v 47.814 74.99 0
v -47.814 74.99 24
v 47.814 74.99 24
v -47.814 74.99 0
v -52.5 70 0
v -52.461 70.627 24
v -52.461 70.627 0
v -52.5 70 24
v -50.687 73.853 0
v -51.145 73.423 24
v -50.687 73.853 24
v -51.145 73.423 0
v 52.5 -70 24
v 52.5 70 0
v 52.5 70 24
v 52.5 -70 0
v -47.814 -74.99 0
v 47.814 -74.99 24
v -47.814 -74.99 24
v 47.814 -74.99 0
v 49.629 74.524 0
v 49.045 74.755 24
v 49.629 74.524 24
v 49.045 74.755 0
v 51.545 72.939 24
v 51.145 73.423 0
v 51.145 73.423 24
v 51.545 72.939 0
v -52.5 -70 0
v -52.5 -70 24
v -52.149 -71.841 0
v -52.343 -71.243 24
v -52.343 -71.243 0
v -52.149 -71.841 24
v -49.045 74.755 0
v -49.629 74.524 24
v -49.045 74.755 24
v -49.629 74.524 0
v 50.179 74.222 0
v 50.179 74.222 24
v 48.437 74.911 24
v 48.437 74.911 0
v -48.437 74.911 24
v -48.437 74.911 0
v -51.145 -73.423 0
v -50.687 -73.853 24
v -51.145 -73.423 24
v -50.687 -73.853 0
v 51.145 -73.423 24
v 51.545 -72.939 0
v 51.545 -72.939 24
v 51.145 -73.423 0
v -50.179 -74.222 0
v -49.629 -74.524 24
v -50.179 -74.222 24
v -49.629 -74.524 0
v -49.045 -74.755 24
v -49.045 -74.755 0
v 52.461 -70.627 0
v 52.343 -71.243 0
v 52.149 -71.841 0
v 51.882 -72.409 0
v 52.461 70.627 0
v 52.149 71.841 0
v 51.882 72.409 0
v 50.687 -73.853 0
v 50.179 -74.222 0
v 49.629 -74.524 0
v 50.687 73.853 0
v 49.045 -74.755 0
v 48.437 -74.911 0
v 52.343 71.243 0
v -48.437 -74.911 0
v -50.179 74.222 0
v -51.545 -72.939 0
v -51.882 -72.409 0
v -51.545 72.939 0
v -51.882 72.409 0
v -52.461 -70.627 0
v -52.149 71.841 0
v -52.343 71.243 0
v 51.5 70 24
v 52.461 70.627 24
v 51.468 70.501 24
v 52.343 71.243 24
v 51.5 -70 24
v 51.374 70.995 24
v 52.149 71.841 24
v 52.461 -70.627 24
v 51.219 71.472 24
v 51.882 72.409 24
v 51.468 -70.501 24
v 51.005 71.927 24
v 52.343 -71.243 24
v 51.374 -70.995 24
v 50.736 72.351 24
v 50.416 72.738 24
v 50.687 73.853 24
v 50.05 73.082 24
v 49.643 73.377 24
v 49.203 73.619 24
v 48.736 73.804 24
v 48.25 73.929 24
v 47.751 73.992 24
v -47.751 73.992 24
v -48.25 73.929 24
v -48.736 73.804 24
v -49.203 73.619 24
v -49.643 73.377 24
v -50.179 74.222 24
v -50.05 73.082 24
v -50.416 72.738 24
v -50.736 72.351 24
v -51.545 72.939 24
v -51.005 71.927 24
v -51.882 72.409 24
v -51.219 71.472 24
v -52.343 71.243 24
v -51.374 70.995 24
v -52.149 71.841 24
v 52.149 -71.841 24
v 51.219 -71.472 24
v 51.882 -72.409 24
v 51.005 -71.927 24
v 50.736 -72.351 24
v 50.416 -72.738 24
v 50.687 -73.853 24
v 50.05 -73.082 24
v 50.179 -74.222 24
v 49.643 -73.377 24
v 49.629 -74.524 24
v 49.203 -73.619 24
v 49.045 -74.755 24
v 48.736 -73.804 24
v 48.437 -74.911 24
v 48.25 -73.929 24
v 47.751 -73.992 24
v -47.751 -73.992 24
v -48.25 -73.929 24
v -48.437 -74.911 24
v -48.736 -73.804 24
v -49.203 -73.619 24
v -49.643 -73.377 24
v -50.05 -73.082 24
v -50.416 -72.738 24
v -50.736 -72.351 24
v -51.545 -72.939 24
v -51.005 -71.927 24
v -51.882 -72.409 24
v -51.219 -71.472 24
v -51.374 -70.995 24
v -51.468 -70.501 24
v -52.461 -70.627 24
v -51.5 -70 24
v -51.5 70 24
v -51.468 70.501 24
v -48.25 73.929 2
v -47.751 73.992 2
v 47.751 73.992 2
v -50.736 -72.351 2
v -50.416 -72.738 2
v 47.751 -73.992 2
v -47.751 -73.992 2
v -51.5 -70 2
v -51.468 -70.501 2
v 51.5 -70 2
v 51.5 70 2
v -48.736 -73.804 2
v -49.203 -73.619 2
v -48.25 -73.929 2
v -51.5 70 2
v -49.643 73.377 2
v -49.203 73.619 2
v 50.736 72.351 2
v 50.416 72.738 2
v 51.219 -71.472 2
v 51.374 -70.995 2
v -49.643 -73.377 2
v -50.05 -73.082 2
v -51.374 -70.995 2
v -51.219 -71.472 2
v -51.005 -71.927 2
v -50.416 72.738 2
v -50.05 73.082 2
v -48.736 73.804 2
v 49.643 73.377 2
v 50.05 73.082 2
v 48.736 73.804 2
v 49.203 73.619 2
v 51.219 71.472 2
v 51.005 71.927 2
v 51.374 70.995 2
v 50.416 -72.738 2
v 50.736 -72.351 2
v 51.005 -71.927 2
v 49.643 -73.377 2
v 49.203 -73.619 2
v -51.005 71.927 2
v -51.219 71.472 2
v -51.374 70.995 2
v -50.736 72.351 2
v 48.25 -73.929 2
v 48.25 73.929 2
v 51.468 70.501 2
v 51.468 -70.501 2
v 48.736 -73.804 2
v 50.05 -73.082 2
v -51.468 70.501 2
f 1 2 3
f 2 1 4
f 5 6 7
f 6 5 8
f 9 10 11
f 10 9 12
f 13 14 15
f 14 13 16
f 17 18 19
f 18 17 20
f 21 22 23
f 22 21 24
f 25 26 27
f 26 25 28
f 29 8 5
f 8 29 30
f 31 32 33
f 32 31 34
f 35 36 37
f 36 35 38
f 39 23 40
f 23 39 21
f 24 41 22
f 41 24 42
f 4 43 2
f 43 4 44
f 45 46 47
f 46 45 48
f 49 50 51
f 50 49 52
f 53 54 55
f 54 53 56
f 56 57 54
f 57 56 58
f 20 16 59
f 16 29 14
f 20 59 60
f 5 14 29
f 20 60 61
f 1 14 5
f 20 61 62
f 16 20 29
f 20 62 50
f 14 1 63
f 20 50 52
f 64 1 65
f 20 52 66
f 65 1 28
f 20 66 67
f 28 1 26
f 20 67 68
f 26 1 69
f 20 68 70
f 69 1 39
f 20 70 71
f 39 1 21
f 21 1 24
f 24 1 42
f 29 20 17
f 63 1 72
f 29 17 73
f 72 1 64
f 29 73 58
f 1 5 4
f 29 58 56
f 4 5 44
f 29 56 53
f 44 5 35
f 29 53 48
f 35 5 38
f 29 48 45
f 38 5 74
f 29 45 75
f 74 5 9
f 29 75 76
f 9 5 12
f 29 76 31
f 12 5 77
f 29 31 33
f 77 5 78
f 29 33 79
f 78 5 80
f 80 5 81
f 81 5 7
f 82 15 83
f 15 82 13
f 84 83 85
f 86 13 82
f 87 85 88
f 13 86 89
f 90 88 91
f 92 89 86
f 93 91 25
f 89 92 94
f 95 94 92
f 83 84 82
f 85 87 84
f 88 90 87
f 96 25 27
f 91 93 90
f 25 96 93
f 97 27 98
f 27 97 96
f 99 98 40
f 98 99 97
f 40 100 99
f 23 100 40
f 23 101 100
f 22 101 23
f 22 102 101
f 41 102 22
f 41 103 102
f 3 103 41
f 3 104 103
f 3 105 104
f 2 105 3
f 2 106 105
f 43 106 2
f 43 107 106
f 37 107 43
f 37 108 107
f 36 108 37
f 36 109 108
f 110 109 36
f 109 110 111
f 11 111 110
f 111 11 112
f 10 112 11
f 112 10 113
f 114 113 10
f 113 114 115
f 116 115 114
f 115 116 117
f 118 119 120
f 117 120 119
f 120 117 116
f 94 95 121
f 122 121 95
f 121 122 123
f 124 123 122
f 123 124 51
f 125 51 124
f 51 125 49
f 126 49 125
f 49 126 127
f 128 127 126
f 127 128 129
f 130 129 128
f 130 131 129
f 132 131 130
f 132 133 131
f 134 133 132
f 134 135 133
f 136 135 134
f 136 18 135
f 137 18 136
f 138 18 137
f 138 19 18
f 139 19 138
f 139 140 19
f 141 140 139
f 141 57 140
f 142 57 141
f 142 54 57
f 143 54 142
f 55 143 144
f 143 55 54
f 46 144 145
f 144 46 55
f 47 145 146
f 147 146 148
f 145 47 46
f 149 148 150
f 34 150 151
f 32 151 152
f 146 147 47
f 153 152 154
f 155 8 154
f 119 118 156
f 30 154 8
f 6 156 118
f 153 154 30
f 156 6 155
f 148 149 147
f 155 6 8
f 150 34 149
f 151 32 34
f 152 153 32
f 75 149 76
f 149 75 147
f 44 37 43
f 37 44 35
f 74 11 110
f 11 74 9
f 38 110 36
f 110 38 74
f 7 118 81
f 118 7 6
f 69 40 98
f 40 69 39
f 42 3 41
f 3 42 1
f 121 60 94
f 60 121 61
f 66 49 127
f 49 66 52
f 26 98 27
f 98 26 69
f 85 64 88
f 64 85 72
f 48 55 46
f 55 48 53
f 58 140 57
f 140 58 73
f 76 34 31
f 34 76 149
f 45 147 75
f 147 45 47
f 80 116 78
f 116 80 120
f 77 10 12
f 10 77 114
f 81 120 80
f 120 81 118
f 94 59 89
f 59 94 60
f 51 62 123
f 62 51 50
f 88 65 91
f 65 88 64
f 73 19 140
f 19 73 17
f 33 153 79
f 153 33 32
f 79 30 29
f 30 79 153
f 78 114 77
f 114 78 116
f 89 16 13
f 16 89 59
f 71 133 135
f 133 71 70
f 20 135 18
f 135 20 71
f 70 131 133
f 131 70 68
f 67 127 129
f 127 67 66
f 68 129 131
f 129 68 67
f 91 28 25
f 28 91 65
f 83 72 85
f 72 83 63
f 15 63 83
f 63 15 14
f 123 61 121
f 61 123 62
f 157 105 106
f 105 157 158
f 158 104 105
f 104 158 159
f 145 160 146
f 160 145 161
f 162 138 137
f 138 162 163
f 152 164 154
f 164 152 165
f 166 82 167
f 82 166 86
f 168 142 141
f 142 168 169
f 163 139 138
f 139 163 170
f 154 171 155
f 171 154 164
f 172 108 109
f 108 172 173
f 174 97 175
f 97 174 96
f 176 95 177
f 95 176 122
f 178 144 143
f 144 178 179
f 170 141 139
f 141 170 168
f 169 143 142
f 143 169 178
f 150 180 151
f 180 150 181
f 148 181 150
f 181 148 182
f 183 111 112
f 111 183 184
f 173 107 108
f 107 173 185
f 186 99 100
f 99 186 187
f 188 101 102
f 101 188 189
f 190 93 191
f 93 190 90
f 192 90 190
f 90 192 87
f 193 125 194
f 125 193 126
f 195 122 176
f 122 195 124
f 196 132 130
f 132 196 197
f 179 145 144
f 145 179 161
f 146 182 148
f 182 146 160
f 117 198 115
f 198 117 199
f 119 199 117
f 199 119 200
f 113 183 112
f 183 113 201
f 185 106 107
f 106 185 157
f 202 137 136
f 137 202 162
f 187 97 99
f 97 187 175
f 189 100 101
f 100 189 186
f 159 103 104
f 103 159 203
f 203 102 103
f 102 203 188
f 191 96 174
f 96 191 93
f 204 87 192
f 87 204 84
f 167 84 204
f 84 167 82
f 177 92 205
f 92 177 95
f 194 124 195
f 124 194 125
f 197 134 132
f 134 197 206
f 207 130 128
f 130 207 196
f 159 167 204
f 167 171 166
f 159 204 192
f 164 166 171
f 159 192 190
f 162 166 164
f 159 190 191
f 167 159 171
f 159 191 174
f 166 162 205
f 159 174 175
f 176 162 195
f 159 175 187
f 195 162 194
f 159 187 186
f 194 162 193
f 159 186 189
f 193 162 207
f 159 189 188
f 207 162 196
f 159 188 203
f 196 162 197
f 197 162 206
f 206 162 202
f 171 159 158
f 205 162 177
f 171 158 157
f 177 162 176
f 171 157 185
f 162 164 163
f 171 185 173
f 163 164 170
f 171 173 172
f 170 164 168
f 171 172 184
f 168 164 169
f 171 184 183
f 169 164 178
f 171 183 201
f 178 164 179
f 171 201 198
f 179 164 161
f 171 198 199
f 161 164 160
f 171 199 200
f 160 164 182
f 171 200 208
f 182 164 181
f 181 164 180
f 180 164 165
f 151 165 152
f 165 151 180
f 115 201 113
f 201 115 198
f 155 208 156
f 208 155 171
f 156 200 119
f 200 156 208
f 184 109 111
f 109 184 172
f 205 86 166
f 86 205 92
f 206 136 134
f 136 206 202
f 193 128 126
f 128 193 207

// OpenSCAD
$fn = 50;


difference() {
	union() {
		hull() {
			translate(v = [-47.5000000000, 70.0000000000, 0]) {
				cylinder(h = 24, r = 5);
			}
			translate(v = [47.5000000000, 70.0000000000, 0]) {
				cylinder(h = 24, r = 5);
			}
			translate(v = [-47.5000000000, -70.0000000000, 0]) {
				cylinder(h = 24, r = 5);
			}
			translate(v = [47.5000000000, -70.0000000000, 0]) {
				cylinder(h = 24, r = 5);
			}
		}
	}
	union() {
		translate(v = [0, 0, 2]) {
			hull() {
				translate(v = [-47.5000000000, 70.0000000000, 0]) {
					cylinder(h = 22, r = 4);
				}
				translate(v = [47.5000000000, 70.0000000000, 0]) {
					cylinder(h = 22, r = 4);
				}
				translate(v = [-47.5000000000, -70.0000000000, 0]) {
					cylinder(h = 22, r = 4);
				}
				translate(v = [47.5000000000, -70.0000000000, 0]) {
					cylinder(h = 22, r = 4);
				}
			}
		}
	}
}
